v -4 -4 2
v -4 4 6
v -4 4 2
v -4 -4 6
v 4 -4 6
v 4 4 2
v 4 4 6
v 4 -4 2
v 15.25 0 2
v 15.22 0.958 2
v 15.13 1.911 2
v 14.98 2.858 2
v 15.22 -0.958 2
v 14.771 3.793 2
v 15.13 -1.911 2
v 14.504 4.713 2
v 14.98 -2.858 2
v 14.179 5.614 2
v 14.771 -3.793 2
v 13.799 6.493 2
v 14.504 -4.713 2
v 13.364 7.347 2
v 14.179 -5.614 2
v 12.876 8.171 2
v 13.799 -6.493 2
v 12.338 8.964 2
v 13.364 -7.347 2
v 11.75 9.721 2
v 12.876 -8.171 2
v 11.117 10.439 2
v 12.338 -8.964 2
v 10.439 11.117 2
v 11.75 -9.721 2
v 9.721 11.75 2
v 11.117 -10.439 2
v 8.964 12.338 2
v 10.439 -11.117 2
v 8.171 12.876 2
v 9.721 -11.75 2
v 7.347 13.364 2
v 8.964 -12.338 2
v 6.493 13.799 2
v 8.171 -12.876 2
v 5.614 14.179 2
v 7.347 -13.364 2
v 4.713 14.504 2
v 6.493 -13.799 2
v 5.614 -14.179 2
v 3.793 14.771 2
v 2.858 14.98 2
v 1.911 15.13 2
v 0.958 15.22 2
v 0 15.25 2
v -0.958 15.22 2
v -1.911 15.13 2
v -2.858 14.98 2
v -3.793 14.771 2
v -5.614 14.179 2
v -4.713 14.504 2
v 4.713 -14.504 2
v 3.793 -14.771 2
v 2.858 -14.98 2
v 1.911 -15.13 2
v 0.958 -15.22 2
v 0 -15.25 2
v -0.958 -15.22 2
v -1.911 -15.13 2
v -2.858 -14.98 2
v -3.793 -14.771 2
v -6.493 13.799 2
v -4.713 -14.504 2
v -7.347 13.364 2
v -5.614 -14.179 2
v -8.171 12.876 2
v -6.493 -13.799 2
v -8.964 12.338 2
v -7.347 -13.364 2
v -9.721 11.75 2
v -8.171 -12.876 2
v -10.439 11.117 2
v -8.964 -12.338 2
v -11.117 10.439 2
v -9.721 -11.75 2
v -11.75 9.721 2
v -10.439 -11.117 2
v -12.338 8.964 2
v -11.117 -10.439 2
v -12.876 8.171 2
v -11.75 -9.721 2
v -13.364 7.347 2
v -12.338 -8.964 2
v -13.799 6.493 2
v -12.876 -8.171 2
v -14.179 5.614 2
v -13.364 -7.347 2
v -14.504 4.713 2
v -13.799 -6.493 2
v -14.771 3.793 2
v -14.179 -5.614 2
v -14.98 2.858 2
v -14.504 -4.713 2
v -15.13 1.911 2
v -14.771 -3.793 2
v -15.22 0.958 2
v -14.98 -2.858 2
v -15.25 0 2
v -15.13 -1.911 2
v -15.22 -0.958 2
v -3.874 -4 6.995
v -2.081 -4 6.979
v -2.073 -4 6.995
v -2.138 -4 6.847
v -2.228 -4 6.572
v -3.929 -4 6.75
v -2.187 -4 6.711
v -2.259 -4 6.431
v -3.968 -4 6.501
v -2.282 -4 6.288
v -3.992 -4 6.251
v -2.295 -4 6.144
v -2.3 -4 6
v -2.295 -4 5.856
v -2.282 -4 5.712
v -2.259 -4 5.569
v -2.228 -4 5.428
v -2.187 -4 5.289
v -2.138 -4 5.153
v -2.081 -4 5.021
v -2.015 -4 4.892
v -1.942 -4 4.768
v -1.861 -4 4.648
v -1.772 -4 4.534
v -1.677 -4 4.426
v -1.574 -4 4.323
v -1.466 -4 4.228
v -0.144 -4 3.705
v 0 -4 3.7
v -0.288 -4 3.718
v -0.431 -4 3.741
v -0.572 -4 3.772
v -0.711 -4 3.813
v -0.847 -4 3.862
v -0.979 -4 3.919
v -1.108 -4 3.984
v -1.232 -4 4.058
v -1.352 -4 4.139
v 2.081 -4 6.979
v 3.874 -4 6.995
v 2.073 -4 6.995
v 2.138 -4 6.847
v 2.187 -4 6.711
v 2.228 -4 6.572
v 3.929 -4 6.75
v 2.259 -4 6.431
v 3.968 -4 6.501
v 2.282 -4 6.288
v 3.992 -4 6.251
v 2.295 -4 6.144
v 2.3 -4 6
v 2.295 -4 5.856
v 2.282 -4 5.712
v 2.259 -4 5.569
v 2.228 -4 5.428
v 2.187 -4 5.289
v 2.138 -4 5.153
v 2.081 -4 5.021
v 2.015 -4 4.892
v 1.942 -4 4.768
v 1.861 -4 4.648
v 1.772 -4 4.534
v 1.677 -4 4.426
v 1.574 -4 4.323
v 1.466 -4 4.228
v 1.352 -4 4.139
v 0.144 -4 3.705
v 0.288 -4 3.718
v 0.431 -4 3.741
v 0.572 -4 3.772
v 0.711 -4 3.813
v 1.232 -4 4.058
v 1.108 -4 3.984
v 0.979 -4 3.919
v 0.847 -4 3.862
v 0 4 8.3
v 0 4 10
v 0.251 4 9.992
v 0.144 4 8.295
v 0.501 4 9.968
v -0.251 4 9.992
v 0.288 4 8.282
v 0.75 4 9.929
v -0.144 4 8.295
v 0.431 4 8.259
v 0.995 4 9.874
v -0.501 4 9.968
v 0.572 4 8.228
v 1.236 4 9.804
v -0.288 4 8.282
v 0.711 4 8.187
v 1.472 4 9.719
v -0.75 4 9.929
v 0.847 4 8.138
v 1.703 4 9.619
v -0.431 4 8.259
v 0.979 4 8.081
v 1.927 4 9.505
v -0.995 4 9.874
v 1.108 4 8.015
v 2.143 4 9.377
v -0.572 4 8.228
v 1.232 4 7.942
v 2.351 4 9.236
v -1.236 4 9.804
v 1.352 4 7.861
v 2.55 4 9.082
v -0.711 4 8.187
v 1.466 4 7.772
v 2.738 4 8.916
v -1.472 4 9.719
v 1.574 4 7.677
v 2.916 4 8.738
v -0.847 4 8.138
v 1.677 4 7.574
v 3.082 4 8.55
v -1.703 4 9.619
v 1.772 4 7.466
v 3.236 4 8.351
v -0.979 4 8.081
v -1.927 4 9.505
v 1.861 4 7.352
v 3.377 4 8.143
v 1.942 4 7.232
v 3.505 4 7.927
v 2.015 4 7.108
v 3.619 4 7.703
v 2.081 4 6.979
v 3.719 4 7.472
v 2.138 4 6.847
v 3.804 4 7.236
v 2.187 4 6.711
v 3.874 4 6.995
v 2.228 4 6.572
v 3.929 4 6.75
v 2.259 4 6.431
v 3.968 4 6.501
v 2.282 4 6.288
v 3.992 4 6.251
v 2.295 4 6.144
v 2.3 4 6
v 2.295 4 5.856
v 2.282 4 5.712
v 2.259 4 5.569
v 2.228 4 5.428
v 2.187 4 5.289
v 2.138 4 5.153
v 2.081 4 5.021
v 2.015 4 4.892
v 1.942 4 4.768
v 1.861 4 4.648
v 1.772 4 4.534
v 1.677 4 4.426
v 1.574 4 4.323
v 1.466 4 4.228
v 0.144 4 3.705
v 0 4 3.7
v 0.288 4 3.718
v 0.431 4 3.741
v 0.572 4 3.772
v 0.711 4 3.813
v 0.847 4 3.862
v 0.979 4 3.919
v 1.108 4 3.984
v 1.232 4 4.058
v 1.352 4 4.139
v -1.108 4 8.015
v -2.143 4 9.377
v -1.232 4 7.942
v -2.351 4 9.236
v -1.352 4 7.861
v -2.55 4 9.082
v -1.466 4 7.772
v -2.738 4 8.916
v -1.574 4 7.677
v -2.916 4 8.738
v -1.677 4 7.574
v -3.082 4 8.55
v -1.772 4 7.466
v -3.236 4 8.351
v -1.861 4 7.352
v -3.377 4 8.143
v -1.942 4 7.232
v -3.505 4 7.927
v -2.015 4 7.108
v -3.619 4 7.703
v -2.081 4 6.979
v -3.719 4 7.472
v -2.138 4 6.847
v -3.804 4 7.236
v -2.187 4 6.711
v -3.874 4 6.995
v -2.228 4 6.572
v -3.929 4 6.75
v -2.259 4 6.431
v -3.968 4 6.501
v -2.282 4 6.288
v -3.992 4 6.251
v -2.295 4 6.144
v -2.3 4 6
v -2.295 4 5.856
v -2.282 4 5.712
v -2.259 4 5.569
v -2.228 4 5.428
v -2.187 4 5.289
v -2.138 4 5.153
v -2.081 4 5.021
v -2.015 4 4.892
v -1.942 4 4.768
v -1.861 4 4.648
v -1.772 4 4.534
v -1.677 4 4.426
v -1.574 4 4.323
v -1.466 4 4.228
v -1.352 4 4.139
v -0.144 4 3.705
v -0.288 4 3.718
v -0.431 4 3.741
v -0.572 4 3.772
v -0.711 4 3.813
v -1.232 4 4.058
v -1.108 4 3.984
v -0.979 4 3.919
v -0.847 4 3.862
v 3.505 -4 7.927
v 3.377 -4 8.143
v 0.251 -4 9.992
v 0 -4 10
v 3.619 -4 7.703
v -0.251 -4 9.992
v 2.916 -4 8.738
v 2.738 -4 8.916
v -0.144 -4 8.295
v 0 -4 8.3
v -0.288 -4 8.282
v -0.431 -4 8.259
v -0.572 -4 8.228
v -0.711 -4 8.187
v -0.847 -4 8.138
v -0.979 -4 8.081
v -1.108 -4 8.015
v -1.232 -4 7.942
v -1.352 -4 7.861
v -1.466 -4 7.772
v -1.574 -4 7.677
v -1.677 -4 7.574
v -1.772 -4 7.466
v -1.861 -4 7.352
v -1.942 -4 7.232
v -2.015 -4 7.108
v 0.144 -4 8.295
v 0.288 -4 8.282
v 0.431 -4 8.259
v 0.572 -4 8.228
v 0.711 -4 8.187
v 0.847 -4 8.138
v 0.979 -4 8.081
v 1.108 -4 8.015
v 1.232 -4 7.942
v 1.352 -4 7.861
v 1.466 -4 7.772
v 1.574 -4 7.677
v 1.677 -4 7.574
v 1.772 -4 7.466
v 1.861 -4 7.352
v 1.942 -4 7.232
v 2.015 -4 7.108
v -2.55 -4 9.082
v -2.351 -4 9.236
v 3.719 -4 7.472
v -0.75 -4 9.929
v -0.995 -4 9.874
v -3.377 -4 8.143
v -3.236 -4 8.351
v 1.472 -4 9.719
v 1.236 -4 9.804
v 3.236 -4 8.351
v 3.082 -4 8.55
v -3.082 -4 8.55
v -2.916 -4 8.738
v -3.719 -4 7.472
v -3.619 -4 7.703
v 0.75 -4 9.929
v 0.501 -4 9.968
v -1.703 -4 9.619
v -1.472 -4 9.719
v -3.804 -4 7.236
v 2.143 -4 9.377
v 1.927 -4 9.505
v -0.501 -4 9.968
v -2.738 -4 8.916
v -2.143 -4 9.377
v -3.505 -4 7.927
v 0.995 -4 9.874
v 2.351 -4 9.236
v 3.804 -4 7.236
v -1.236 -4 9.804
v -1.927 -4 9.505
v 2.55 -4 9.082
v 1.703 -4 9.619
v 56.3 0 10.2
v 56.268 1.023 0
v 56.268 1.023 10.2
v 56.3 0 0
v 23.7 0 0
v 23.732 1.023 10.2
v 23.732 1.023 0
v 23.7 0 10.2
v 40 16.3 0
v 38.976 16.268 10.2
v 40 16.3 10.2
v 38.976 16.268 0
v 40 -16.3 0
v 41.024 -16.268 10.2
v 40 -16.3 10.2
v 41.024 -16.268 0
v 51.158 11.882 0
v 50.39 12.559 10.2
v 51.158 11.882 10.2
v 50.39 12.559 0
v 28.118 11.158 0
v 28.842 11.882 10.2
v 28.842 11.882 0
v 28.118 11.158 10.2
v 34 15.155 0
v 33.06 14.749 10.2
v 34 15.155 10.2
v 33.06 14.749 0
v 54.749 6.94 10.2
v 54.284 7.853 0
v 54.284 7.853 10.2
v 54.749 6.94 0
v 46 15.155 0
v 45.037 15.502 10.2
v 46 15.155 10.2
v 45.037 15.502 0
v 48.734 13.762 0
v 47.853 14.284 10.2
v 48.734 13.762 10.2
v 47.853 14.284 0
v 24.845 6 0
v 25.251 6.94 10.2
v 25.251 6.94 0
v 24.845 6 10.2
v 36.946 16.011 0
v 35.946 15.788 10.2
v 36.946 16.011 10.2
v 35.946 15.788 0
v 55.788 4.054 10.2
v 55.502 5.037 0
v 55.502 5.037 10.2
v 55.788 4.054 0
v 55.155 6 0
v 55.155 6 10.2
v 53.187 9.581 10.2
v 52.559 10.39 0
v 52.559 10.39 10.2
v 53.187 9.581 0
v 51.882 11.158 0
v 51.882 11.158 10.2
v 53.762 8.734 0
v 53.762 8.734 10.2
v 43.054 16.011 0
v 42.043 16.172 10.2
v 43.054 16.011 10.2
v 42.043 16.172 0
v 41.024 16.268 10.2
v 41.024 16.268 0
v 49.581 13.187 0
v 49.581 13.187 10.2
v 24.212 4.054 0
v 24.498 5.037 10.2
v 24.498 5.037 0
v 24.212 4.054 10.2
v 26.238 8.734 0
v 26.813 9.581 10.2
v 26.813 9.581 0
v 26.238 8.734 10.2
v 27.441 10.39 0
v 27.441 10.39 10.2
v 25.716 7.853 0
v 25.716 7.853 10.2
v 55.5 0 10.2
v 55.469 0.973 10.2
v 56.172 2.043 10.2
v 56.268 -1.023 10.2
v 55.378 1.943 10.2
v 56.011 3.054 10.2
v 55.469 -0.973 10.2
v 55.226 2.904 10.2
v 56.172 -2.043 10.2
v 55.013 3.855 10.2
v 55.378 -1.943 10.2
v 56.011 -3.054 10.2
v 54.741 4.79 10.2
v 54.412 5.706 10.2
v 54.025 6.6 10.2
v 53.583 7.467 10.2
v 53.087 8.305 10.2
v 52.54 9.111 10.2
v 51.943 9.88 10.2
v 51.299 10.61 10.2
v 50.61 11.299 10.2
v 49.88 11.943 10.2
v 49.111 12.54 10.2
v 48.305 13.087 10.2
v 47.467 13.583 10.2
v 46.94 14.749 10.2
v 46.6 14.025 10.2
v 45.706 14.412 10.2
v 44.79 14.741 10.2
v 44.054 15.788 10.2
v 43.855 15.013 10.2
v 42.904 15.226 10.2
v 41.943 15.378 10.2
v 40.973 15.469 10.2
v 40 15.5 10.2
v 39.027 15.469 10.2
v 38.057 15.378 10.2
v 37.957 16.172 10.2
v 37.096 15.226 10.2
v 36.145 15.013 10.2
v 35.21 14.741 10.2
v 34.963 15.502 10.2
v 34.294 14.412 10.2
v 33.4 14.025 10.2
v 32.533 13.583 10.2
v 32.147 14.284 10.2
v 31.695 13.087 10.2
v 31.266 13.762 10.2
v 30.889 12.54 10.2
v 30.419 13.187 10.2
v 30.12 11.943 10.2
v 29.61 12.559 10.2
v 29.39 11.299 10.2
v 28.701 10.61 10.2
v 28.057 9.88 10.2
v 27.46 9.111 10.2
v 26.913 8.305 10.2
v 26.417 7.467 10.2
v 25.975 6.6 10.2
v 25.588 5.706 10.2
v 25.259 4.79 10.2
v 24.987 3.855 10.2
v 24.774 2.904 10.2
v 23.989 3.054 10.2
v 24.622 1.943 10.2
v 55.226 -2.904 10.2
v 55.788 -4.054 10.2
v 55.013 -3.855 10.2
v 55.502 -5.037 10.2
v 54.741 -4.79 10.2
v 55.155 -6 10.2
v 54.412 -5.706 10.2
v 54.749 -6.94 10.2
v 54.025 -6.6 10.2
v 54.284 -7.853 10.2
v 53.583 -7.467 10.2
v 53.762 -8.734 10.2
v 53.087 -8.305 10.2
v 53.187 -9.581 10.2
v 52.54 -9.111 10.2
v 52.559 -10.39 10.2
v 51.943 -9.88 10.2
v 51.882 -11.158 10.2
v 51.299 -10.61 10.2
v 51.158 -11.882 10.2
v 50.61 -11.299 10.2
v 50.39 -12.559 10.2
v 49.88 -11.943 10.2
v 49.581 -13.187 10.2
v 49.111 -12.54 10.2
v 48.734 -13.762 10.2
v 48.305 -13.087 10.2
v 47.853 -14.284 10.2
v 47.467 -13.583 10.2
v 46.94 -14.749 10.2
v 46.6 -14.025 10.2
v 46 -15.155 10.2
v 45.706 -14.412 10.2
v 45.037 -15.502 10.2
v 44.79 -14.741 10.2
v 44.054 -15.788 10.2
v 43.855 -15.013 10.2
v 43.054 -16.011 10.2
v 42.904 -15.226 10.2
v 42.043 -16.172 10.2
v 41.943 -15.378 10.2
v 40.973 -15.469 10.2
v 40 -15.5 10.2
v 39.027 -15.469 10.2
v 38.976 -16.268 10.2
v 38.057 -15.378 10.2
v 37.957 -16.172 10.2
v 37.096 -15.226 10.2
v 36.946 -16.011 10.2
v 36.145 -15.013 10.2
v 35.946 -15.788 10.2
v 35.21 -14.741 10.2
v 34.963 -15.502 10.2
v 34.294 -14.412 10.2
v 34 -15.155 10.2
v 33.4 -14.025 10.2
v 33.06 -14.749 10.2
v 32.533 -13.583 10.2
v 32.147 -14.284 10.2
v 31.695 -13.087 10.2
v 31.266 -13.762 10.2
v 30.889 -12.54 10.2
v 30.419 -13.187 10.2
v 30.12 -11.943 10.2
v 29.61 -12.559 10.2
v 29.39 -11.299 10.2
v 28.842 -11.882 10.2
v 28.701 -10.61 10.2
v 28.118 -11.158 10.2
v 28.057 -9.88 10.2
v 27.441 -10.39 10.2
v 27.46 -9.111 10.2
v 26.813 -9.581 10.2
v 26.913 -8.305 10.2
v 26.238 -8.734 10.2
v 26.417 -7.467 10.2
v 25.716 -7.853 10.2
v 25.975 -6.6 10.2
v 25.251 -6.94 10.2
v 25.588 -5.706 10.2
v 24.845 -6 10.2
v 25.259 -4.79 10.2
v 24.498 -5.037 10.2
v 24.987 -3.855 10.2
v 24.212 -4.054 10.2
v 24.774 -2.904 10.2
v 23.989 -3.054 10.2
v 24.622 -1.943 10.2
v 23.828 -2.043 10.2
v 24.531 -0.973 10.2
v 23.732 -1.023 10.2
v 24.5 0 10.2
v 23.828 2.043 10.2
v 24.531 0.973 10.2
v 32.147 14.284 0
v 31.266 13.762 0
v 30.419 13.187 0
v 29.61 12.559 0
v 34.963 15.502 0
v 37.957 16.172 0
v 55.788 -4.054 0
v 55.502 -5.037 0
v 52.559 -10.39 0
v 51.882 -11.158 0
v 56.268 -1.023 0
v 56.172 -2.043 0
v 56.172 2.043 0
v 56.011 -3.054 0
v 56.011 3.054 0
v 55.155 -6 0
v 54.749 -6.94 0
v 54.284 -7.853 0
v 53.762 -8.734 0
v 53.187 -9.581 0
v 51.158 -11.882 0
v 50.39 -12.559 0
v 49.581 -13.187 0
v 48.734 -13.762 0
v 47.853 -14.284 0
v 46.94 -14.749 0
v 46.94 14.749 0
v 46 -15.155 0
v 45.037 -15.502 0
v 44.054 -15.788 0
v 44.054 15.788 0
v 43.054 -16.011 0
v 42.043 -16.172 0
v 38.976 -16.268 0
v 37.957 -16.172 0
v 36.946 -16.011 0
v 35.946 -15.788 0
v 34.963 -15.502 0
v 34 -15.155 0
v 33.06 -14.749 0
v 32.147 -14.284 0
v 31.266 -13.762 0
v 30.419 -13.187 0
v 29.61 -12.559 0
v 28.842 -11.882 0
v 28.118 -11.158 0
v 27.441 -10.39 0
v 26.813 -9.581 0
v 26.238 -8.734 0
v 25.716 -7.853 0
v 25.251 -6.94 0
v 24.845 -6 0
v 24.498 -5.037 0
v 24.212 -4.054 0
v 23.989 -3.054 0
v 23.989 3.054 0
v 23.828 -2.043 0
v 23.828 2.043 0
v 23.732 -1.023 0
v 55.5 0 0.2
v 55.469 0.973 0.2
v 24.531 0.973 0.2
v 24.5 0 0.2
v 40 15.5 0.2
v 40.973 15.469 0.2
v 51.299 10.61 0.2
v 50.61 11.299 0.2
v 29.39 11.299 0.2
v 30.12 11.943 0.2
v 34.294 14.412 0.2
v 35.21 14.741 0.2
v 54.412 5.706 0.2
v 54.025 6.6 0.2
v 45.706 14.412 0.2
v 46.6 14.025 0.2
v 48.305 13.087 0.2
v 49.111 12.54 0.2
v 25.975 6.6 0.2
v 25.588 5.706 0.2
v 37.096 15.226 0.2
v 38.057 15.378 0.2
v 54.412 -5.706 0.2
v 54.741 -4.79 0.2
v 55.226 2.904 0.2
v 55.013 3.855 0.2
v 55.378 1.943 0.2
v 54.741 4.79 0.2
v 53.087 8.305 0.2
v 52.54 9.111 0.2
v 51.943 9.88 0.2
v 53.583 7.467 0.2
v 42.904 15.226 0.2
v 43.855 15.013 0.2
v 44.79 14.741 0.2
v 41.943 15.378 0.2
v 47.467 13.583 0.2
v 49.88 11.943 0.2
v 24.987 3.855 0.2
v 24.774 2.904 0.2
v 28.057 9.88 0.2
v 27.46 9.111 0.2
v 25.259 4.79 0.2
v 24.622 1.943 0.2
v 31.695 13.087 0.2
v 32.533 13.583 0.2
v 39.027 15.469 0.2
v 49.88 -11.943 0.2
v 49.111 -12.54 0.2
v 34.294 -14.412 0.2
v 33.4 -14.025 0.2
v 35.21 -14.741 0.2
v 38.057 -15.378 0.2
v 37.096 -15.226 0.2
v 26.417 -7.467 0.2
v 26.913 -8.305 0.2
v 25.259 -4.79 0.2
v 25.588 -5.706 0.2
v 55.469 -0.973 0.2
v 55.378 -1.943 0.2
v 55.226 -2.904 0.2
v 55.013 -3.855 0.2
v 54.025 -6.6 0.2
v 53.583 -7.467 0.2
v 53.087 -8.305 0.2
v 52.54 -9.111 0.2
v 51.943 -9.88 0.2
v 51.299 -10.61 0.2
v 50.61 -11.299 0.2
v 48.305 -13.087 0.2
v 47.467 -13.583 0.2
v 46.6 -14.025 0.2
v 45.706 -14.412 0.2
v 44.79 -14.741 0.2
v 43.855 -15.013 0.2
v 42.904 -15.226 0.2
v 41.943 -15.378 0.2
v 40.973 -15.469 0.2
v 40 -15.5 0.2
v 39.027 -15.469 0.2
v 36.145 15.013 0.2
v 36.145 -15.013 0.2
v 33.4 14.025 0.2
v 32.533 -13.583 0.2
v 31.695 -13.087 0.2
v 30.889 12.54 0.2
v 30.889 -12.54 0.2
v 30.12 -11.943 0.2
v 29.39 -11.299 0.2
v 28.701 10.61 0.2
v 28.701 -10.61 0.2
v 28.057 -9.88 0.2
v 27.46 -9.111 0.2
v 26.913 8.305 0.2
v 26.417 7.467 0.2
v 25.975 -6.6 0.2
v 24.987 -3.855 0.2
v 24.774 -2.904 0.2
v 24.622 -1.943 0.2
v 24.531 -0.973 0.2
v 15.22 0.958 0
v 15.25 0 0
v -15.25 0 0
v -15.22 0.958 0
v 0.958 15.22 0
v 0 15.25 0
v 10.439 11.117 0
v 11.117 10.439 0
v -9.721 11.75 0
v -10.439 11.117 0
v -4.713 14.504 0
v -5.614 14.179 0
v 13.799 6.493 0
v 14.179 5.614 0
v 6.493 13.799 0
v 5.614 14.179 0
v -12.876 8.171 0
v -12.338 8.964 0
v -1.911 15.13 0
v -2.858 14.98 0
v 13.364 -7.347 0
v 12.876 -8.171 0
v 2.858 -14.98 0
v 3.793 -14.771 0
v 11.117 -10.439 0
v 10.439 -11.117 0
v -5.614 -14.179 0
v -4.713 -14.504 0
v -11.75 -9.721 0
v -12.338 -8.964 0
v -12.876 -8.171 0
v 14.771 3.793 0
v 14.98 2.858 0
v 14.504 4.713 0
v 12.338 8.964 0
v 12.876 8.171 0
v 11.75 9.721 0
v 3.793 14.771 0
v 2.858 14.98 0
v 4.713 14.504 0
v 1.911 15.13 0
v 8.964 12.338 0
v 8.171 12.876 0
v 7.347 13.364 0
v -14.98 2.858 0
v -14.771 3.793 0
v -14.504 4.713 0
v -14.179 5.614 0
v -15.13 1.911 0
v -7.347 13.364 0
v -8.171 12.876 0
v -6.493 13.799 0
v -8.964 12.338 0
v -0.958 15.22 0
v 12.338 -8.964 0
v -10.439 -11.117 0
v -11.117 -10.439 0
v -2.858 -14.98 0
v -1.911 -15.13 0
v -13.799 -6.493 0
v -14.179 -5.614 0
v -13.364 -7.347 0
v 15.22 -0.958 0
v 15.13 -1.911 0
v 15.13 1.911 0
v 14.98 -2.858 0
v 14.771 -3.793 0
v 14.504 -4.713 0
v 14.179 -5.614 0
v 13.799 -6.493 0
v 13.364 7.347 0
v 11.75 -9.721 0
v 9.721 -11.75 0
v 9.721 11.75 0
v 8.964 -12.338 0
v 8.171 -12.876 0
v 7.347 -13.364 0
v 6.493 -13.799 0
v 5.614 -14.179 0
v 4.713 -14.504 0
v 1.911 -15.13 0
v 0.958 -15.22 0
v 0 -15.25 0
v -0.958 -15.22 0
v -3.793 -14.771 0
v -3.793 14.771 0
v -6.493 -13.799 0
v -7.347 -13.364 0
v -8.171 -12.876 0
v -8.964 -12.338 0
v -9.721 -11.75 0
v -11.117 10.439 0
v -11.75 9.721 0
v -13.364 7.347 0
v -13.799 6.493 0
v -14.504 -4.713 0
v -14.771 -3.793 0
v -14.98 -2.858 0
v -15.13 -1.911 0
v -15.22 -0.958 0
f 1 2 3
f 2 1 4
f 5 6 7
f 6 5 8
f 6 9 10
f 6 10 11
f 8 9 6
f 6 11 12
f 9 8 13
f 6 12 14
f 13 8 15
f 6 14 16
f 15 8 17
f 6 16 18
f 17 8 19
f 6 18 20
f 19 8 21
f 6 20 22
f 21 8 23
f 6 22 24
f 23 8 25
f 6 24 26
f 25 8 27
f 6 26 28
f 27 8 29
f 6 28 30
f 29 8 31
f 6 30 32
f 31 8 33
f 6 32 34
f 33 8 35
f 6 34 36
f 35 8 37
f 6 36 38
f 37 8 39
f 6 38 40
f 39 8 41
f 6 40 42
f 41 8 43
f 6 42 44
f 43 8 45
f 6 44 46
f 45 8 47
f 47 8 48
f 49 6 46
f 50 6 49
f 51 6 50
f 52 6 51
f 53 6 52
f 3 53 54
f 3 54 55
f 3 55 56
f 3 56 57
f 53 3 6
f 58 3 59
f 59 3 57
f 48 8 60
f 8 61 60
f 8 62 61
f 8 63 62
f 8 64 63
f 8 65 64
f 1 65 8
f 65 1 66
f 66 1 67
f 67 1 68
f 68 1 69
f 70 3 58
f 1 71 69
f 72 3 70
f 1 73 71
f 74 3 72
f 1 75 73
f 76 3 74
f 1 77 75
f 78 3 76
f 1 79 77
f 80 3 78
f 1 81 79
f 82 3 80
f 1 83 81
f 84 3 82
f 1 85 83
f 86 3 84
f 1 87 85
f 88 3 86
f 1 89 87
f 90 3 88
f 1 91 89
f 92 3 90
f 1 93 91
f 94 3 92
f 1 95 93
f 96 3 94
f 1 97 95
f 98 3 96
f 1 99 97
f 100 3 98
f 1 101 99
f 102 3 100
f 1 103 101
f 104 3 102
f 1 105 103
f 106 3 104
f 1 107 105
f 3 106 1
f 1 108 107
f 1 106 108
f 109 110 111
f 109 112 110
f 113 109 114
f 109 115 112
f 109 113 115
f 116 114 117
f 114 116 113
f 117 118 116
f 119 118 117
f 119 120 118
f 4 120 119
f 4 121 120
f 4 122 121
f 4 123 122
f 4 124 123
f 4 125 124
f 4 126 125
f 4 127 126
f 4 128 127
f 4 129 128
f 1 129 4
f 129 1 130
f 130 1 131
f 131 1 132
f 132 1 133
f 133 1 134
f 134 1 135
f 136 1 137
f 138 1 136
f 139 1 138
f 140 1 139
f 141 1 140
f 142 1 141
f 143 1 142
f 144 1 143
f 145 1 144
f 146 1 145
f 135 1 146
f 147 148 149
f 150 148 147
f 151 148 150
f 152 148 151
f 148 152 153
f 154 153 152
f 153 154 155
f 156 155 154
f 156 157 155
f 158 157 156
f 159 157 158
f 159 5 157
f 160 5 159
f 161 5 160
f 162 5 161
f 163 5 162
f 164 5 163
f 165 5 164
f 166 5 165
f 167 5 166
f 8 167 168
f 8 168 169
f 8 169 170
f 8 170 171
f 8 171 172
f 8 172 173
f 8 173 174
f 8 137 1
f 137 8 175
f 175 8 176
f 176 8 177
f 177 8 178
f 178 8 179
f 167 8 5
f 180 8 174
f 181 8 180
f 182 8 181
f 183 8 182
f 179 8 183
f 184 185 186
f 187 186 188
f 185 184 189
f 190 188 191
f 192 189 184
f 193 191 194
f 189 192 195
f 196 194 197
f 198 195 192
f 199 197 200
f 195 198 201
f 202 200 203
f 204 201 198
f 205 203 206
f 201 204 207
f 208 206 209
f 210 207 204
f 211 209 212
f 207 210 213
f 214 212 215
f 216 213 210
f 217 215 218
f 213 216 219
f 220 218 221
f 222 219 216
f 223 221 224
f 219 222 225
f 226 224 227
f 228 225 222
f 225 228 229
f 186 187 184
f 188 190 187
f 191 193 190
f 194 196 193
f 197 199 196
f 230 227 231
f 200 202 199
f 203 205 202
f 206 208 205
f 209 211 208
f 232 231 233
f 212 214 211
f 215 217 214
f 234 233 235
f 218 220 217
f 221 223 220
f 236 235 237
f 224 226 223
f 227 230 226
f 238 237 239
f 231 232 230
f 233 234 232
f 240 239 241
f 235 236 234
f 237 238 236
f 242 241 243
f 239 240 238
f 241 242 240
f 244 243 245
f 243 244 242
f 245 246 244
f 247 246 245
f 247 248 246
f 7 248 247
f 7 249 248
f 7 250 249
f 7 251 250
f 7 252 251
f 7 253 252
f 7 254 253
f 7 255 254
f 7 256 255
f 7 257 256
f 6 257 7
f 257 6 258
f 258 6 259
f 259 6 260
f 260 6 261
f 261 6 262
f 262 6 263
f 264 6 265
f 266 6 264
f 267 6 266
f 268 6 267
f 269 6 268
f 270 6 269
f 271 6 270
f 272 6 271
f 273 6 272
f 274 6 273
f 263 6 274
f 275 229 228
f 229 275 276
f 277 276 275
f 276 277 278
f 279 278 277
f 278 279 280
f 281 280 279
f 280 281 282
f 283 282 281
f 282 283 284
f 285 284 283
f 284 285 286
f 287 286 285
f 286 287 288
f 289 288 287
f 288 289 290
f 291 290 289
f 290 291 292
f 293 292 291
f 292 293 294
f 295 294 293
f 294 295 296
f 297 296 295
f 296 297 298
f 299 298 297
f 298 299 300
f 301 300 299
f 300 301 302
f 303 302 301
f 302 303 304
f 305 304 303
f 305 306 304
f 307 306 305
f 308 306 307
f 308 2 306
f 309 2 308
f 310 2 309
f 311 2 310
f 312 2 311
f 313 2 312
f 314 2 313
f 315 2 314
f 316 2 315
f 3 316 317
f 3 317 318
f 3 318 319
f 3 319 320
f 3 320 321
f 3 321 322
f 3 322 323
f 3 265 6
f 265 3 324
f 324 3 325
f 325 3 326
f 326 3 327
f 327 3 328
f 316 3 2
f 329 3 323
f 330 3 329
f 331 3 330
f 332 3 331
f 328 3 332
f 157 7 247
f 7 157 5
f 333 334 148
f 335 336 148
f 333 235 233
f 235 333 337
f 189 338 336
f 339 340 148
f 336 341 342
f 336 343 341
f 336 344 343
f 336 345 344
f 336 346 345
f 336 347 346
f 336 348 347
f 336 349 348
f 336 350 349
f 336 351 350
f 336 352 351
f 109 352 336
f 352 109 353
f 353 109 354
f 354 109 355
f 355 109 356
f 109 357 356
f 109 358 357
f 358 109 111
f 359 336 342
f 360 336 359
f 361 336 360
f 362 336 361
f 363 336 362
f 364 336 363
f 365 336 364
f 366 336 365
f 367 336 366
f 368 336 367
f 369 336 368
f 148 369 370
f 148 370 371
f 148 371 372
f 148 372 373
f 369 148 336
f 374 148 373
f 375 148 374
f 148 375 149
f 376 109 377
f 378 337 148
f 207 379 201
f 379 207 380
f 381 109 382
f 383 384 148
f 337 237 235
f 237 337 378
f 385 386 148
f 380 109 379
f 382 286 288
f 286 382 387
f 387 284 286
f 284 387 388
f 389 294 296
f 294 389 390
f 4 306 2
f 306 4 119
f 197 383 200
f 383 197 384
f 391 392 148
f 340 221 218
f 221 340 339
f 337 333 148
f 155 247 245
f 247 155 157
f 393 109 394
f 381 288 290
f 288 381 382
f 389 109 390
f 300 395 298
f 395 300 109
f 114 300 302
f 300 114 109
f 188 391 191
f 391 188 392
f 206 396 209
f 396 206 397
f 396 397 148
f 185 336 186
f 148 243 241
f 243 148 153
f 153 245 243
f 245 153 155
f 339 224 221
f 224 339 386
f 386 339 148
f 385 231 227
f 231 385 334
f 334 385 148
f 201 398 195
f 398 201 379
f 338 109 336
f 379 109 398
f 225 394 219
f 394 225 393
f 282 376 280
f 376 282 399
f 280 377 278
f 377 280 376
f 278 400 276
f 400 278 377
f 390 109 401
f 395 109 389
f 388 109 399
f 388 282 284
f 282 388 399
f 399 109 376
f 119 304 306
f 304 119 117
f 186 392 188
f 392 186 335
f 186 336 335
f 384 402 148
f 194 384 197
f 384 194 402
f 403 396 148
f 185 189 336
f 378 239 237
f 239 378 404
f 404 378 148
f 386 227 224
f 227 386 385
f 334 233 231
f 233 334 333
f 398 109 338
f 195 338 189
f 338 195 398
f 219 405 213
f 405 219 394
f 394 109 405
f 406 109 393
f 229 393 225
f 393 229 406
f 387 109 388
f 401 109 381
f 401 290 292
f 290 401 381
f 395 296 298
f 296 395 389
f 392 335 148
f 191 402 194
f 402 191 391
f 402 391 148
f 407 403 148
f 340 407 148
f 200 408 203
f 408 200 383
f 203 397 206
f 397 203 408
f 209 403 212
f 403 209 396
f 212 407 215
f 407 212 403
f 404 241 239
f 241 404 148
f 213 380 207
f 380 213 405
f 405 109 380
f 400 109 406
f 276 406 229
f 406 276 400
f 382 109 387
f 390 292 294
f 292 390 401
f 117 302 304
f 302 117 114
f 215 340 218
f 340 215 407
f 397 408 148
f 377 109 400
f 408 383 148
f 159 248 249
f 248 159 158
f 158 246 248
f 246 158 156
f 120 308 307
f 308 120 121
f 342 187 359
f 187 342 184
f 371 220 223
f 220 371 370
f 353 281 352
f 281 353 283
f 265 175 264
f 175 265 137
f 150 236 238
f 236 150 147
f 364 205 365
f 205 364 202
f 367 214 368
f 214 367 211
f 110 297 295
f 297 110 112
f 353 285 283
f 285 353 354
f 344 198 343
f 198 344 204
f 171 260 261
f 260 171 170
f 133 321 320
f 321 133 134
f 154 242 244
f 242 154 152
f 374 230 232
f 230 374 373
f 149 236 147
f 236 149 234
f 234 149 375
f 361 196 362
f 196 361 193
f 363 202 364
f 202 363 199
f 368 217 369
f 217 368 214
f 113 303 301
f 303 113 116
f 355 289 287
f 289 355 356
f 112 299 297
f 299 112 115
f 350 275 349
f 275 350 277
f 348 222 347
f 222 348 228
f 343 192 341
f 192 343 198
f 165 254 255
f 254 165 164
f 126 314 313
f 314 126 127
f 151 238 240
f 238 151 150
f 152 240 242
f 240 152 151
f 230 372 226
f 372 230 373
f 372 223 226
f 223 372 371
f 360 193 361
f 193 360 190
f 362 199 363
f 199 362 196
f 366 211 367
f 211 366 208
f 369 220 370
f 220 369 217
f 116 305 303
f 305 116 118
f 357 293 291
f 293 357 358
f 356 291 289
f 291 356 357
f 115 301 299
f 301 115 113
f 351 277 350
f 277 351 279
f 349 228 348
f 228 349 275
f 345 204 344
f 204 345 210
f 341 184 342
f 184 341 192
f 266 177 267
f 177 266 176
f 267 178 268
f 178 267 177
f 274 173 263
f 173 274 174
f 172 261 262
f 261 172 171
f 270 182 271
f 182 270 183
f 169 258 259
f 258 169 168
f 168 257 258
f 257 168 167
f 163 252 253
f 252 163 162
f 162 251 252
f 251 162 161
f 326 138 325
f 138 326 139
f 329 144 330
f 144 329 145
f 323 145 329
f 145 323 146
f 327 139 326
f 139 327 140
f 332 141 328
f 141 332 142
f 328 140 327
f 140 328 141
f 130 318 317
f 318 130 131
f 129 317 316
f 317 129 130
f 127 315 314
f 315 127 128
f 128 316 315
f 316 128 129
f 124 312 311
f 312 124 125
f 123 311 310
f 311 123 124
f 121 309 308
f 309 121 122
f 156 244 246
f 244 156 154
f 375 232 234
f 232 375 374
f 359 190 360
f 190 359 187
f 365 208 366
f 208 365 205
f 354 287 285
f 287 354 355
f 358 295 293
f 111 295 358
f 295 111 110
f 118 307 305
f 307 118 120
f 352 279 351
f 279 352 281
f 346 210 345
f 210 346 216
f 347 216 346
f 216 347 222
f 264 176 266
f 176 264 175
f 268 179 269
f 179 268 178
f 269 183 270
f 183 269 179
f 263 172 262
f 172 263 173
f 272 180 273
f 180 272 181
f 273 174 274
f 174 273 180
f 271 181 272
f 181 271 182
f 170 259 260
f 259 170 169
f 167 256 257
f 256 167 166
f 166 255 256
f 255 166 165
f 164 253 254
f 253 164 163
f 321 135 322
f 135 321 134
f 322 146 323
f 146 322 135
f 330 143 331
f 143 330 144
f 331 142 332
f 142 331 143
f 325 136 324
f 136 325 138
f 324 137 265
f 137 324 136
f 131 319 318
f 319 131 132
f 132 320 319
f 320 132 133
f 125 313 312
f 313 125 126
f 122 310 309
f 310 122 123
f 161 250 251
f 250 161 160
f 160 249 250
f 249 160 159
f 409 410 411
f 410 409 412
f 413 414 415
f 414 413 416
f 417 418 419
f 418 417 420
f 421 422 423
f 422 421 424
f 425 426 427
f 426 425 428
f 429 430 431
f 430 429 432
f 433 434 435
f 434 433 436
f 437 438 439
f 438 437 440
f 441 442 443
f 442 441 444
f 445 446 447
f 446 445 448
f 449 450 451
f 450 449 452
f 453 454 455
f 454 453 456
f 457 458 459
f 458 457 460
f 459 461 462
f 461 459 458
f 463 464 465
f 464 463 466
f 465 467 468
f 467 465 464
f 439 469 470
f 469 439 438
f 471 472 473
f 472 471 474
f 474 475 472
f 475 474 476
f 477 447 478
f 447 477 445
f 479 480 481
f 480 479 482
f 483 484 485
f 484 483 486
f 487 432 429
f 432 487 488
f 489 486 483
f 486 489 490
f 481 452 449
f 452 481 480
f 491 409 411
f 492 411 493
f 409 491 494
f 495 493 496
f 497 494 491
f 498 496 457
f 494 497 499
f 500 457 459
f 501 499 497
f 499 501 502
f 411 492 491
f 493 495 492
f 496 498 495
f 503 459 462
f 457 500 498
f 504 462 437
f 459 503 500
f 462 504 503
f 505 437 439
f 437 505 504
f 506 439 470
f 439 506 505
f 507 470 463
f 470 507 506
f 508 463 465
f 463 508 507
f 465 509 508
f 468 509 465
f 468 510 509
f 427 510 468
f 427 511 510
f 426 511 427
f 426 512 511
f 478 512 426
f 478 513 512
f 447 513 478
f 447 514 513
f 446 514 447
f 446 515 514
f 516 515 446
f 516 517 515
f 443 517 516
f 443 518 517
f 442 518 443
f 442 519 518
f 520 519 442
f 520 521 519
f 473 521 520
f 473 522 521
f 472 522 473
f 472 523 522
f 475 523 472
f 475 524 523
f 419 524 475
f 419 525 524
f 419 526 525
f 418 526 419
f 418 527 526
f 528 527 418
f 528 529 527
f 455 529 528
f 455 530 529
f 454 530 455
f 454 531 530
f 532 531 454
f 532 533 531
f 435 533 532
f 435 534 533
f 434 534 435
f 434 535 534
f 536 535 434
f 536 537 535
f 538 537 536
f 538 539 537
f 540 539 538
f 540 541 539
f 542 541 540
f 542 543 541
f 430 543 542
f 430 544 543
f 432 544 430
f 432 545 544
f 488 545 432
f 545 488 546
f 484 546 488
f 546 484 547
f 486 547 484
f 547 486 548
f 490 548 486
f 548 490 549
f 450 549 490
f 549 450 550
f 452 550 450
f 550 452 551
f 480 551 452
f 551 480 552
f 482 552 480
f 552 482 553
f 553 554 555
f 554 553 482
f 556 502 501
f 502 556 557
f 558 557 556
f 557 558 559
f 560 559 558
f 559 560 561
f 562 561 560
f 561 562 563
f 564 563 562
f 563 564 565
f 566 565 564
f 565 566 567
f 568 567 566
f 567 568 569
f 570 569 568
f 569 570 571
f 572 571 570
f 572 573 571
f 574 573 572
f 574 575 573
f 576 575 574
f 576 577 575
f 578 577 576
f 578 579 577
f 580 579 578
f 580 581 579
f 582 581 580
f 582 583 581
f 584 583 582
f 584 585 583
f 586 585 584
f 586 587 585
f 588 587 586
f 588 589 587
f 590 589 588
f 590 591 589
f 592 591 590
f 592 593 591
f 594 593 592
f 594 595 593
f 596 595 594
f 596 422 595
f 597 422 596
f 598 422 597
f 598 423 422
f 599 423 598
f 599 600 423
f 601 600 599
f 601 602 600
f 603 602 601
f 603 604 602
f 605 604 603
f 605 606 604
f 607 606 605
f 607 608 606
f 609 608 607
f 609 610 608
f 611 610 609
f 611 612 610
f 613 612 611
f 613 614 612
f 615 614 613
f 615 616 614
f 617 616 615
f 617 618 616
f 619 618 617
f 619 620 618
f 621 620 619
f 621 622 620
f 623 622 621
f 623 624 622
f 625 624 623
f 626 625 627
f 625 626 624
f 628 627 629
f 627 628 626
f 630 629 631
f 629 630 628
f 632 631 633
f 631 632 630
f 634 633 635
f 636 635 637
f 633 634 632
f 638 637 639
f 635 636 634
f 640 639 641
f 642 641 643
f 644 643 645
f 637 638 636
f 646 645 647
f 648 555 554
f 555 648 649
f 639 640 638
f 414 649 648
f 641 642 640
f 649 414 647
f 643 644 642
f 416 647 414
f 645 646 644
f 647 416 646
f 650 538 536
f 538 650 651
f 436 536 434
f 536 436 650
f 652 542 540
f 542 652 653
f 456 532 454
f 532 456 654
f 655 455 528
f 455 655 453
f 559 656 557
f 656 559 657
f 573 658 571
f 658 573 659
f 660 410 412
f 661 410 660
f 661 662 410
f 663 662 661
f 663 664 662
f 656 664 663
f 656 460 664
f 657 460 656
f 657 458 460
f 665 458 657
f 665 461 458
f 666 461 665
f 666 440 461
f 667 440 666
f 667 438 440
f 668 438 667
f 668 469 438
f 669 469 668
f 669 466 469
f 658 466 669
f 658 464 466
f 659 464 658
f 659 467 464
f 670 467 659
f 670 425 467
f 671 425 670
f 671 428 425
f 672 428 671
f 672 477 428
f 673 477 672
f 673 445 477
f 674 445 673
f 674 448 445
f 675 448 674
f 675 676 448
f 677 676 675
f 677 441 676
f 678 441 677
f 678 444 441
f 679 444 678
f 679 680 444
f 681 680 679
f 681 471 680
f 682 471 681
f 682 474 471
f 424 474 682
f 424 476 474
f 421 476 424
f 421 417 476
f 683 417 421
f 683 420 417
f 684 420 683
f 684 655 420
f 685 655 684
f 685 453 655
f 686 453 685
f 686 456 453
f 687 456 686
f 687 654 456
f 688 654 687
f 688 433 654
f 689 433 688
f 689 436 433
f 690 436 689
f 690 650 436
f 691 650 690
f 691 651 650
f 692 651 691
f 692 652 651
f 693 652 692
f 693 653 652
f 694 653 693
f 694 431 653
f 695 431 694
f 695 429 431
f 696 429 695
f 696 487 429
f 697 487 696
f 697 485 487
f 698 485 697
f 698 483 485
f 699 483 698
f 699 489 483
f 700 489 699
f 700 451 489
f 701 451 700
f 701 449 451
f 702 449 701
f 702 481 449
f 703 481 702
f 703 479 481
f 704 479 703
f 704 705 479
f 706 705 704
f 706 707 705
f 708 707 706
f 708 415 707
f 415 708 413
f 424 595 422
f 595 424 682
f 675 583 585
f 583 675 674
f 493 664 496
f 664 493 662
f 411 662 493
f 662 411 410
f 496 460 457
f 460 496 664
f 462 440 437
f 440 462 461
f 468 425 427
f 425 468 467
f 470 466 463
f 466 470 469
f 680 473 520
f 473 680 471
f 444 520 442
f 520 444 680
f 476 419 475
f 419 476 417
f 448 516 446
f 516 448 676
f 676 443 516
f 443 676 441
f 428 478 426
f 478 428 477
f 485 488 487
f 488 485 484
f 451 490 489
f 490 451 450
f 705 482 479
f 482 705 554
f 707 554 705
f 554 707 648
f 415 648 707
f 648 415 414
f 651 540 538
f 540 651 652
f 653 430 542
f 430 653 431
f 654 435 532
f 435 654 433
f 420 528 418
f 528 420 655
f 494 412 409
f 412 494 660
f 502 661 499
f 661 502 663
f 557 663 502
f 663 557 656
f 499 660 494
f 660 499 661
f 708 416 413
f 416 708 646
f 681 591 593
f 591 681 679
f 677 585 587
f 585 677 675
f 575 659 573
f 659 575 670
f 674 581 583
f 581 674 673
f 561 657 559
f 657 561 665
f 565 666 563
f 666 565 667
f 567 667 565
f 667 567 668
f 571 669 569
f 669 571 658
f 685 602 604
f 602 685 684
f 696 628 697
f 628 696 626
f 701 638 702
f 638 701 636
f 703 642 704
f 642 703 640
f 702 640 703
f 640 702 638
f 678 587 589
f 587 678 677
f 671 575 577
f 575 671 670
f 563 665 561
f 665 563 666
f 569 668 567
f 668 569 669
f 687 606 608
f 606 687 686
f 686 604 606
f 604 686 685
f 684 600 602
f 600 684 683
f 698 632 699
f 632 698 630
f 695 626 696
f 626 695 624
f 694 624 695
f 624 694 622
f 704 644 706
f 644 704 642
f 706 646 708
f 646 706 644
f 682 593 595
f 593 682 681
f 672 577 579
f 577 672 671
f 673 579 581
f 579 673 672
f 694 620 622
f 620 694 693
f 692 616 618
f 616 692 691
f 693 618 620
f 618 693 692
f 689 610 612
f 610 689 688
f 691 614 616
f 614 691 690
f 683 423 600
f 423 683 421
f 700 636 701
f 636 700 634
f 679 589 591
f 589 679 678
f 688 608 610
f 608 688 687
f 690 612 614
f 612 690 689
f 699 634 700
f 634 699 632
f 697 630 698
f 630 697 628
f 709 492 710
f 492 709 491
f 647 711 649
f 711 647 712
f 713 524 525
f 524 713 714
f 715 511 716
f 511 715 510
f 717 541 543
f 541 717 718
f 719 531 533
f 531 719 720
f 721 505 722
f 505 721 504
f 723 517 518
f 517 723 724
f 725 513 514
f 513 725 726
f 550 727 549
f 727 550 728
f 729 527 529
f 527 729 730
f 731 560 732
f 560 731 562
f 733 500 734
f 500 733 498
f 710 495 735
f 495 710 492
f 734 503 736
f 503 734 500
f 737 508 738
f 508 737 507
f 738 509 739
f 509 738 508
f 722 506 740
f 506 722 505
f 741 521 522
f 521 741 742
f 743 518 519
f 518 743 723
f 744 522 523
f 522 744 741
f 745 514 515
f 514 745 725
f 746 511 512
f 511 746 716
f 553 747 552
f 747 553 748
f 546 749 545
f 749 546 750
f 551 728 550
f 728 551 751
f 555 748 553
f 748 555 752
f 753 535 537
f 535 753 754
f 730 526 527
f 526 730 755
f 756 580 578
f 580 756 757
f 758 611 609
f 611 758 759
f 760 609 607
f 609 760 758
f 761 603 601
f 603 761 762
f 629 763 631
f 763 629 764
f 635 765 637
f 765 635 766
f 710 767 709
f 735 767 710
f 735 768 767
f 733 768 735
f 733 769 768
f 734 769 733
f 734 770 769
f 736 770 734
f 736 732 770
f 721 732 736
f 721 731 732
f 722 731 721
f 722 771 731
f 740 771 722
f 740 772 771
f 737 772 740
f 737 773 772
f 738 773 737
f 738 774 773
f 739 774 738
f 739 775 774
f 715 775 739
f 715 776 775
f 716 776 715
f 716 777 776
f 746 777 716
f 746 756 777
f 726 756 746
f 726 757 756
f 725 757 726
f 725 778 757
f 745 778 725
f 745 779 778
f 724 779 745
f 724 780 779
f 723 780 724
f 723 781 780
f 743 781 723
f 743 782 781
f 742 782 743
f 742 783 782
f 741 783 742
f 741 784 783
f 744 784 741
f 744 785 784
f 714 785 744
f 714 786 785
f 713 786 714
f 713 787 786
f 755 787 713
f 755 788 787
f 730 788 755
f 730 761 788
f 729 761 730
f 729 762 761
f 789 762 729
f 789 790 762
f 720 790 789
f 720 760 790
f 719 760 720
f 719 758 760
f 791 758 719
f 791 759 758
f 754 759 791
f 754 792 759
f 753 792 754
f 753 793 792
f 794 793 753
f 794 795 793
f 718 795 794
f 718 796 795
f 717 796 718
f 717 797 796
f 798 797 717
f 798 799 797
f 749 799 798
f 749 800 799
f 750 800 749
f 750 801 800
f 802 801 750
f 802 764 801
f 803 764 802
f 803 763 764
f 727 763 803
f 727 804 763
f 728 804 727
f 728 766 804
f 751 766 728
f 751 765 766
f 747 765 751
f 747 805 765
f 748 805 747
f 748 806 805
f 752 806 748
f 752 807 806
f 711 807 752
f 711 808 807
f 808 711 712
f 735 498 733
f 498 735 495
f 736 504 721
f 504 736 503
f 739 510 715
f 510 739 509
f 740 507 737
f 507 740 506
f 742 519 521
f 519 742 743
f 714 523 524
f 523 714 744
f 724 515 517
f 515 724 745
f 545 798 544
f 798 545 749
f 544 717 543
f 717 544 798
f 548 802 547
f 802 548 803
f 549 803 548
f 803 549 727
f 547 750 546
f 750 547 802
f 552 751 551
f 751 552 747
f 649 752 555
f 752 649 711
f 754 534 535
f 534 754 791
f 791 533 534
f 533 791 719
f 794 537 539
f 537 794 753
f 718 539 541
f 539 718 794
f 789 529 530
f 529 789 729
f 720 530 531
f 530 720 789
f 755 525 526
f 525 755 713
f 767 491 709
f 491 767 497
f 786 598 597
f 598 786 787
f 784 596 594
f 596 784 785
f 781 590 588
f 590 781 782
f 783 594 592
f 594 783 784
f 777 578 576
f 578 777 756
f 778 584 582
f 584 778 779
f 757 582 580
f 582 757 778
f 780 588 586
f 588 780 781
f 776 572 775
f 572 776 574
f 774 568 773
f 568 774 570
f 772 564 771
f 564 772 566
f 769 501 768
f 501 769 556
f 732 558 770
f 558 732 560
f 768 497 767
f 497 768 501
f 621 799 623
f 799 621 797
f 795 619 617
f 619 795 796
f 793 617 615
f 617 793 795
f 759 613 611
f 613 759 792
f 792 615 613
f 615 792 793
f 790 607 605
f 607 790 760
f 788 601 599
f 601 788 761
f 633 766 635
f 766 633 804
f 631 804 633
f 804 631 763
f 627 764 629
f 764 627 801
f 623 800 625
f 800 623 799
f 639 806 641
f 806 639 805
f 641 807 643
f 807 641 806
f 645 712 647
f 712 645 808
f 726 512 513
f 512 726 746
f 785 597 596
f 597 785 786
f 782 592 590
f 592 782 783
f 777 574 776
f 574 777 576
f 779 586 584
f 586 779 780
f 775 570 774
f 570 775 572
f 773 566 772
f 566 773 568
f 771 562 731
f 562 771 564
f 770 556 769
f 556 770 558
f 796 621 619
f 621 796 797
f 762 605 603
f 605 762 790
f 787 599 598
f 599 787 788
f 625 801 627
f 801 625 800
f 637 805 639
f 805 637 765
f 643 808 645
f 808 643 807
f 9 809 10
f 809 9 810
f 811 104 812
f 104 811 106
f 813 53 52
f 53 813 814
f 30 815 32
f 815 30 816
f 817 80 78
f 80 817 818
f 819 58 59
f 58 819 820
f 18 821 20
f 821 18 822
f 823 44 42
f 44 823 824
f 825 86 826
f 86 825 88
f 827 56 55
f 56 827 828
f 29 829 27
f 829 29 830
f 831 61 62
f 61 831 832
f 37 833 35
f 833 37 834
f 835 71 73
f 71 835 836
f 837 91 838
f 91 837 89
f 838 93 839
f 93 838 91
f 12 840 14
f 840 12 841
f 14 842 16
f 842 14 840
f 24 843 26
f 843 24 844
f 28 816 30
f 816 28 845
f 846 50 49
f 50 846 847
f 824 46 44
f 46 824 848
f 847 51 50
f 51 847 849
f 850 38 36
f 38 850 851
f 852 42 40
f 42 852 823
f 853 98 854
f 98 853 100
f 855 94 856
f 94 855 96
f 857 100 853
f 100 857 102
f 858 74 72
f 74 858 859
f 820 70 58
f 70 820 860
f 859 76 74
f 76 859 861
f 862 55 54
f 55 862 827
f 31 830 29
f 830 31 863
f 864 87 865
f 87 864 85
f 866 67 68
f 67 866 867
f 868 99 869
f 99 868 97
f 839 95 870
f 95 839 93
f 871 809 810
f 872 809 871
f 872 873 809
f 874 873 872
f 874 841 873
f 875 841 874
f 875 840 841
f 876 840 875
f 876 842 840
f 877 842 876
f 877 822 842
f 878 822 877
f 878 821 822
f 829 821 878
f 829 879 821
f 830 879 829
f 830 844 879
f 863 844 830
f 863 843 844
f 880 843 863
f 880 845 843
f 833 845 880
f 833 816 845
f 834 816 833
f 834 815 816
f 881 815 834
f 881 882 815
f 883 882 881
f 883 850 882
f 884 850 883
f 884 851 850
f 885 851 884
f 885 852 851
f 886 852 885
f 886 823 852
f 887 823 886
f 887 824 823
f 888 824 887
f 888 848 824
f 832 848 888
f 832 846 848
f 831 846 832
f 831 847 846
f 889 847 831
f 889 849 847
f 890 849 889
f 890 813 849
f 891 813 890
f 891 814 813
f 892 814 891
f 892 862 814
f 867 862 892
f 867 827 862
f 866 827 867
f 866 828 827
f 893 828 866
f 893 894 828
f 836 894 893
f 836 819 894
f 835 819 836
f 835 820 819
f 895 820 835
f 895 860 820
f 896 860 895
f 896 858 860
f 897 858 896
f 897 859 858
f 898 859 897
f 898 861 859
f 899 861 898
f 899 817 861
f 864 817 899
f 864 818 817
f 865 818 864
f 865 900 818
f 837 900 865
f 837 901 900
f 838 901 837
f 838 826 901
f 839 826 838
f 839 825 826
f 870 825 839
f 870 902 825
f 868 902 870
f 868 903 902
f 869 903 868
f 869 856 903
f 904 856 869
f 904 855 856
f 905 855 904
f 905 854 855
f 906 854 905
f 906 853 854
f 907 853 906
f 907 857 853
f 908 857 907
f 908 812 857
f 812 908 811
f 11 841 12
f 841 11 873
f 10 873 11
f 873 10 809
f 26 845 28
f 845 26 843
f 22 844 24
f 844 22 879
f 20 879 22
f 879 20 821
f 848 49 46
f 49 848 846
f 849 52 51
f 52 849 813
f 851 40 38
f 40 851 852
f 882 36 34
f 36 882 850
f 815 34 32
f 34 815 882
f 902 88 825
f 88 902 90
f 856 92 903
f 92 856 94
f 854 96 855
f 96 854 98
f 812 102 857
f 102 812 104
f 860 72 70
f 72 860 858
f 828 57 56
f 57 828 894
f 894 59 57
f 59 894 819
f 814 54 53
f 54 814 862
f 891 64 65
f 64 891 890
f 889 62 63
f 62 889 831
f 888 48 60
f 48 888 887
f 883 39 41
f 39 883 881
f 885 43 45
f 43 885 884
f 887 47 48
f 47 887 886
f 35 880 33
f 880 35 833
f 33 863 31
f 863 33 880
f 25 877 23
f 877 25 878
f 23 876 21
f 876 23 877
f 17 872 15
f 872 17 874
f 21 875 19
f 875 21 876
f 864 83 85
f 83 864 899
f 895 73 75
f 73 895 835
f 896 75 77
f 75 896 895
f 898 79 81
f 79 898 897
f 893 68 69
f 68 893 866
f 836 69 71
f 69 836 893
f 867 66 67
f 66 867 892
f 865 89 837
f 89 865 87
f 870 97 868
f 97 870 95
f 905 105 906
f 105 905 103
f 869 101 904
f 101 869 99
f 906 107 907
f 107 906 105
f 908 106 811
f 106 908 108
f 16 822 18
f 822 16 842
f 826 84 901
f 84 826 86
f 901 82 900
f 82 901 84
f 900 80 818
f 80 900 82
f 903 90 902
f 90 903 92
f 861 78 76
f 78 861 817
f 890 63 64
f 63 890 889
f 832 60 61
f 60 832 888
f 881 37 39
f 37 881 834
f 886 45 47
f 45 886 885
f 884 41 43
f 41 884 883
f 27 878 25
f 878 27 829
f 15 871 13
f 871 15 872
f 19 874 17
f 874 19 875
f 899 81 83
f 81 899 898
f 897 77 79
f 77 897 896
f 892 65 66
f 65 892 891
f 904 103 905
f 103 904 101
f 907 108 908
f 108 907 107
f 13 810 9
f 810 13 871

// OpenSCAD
$fn=100;
cylinder(d=30.5, h=2);
translate([0,0,6])difference(){union(){translate([0,0,-2])cube([8,8,4],center=true);
    translate([0,0,0]) rotate([90,0,0]) cylinder(d=8,h=8,center=true);}
    rotate([90,0,0])cylinder(d=4.6, h=20,center=true);
    };
    
translate([40,0,0]){
    difference(){cylinder(d=31+1.6,h=10.2);
        translate([0,0,0.2])cylinder(d=31,h=20);
    }
    }
